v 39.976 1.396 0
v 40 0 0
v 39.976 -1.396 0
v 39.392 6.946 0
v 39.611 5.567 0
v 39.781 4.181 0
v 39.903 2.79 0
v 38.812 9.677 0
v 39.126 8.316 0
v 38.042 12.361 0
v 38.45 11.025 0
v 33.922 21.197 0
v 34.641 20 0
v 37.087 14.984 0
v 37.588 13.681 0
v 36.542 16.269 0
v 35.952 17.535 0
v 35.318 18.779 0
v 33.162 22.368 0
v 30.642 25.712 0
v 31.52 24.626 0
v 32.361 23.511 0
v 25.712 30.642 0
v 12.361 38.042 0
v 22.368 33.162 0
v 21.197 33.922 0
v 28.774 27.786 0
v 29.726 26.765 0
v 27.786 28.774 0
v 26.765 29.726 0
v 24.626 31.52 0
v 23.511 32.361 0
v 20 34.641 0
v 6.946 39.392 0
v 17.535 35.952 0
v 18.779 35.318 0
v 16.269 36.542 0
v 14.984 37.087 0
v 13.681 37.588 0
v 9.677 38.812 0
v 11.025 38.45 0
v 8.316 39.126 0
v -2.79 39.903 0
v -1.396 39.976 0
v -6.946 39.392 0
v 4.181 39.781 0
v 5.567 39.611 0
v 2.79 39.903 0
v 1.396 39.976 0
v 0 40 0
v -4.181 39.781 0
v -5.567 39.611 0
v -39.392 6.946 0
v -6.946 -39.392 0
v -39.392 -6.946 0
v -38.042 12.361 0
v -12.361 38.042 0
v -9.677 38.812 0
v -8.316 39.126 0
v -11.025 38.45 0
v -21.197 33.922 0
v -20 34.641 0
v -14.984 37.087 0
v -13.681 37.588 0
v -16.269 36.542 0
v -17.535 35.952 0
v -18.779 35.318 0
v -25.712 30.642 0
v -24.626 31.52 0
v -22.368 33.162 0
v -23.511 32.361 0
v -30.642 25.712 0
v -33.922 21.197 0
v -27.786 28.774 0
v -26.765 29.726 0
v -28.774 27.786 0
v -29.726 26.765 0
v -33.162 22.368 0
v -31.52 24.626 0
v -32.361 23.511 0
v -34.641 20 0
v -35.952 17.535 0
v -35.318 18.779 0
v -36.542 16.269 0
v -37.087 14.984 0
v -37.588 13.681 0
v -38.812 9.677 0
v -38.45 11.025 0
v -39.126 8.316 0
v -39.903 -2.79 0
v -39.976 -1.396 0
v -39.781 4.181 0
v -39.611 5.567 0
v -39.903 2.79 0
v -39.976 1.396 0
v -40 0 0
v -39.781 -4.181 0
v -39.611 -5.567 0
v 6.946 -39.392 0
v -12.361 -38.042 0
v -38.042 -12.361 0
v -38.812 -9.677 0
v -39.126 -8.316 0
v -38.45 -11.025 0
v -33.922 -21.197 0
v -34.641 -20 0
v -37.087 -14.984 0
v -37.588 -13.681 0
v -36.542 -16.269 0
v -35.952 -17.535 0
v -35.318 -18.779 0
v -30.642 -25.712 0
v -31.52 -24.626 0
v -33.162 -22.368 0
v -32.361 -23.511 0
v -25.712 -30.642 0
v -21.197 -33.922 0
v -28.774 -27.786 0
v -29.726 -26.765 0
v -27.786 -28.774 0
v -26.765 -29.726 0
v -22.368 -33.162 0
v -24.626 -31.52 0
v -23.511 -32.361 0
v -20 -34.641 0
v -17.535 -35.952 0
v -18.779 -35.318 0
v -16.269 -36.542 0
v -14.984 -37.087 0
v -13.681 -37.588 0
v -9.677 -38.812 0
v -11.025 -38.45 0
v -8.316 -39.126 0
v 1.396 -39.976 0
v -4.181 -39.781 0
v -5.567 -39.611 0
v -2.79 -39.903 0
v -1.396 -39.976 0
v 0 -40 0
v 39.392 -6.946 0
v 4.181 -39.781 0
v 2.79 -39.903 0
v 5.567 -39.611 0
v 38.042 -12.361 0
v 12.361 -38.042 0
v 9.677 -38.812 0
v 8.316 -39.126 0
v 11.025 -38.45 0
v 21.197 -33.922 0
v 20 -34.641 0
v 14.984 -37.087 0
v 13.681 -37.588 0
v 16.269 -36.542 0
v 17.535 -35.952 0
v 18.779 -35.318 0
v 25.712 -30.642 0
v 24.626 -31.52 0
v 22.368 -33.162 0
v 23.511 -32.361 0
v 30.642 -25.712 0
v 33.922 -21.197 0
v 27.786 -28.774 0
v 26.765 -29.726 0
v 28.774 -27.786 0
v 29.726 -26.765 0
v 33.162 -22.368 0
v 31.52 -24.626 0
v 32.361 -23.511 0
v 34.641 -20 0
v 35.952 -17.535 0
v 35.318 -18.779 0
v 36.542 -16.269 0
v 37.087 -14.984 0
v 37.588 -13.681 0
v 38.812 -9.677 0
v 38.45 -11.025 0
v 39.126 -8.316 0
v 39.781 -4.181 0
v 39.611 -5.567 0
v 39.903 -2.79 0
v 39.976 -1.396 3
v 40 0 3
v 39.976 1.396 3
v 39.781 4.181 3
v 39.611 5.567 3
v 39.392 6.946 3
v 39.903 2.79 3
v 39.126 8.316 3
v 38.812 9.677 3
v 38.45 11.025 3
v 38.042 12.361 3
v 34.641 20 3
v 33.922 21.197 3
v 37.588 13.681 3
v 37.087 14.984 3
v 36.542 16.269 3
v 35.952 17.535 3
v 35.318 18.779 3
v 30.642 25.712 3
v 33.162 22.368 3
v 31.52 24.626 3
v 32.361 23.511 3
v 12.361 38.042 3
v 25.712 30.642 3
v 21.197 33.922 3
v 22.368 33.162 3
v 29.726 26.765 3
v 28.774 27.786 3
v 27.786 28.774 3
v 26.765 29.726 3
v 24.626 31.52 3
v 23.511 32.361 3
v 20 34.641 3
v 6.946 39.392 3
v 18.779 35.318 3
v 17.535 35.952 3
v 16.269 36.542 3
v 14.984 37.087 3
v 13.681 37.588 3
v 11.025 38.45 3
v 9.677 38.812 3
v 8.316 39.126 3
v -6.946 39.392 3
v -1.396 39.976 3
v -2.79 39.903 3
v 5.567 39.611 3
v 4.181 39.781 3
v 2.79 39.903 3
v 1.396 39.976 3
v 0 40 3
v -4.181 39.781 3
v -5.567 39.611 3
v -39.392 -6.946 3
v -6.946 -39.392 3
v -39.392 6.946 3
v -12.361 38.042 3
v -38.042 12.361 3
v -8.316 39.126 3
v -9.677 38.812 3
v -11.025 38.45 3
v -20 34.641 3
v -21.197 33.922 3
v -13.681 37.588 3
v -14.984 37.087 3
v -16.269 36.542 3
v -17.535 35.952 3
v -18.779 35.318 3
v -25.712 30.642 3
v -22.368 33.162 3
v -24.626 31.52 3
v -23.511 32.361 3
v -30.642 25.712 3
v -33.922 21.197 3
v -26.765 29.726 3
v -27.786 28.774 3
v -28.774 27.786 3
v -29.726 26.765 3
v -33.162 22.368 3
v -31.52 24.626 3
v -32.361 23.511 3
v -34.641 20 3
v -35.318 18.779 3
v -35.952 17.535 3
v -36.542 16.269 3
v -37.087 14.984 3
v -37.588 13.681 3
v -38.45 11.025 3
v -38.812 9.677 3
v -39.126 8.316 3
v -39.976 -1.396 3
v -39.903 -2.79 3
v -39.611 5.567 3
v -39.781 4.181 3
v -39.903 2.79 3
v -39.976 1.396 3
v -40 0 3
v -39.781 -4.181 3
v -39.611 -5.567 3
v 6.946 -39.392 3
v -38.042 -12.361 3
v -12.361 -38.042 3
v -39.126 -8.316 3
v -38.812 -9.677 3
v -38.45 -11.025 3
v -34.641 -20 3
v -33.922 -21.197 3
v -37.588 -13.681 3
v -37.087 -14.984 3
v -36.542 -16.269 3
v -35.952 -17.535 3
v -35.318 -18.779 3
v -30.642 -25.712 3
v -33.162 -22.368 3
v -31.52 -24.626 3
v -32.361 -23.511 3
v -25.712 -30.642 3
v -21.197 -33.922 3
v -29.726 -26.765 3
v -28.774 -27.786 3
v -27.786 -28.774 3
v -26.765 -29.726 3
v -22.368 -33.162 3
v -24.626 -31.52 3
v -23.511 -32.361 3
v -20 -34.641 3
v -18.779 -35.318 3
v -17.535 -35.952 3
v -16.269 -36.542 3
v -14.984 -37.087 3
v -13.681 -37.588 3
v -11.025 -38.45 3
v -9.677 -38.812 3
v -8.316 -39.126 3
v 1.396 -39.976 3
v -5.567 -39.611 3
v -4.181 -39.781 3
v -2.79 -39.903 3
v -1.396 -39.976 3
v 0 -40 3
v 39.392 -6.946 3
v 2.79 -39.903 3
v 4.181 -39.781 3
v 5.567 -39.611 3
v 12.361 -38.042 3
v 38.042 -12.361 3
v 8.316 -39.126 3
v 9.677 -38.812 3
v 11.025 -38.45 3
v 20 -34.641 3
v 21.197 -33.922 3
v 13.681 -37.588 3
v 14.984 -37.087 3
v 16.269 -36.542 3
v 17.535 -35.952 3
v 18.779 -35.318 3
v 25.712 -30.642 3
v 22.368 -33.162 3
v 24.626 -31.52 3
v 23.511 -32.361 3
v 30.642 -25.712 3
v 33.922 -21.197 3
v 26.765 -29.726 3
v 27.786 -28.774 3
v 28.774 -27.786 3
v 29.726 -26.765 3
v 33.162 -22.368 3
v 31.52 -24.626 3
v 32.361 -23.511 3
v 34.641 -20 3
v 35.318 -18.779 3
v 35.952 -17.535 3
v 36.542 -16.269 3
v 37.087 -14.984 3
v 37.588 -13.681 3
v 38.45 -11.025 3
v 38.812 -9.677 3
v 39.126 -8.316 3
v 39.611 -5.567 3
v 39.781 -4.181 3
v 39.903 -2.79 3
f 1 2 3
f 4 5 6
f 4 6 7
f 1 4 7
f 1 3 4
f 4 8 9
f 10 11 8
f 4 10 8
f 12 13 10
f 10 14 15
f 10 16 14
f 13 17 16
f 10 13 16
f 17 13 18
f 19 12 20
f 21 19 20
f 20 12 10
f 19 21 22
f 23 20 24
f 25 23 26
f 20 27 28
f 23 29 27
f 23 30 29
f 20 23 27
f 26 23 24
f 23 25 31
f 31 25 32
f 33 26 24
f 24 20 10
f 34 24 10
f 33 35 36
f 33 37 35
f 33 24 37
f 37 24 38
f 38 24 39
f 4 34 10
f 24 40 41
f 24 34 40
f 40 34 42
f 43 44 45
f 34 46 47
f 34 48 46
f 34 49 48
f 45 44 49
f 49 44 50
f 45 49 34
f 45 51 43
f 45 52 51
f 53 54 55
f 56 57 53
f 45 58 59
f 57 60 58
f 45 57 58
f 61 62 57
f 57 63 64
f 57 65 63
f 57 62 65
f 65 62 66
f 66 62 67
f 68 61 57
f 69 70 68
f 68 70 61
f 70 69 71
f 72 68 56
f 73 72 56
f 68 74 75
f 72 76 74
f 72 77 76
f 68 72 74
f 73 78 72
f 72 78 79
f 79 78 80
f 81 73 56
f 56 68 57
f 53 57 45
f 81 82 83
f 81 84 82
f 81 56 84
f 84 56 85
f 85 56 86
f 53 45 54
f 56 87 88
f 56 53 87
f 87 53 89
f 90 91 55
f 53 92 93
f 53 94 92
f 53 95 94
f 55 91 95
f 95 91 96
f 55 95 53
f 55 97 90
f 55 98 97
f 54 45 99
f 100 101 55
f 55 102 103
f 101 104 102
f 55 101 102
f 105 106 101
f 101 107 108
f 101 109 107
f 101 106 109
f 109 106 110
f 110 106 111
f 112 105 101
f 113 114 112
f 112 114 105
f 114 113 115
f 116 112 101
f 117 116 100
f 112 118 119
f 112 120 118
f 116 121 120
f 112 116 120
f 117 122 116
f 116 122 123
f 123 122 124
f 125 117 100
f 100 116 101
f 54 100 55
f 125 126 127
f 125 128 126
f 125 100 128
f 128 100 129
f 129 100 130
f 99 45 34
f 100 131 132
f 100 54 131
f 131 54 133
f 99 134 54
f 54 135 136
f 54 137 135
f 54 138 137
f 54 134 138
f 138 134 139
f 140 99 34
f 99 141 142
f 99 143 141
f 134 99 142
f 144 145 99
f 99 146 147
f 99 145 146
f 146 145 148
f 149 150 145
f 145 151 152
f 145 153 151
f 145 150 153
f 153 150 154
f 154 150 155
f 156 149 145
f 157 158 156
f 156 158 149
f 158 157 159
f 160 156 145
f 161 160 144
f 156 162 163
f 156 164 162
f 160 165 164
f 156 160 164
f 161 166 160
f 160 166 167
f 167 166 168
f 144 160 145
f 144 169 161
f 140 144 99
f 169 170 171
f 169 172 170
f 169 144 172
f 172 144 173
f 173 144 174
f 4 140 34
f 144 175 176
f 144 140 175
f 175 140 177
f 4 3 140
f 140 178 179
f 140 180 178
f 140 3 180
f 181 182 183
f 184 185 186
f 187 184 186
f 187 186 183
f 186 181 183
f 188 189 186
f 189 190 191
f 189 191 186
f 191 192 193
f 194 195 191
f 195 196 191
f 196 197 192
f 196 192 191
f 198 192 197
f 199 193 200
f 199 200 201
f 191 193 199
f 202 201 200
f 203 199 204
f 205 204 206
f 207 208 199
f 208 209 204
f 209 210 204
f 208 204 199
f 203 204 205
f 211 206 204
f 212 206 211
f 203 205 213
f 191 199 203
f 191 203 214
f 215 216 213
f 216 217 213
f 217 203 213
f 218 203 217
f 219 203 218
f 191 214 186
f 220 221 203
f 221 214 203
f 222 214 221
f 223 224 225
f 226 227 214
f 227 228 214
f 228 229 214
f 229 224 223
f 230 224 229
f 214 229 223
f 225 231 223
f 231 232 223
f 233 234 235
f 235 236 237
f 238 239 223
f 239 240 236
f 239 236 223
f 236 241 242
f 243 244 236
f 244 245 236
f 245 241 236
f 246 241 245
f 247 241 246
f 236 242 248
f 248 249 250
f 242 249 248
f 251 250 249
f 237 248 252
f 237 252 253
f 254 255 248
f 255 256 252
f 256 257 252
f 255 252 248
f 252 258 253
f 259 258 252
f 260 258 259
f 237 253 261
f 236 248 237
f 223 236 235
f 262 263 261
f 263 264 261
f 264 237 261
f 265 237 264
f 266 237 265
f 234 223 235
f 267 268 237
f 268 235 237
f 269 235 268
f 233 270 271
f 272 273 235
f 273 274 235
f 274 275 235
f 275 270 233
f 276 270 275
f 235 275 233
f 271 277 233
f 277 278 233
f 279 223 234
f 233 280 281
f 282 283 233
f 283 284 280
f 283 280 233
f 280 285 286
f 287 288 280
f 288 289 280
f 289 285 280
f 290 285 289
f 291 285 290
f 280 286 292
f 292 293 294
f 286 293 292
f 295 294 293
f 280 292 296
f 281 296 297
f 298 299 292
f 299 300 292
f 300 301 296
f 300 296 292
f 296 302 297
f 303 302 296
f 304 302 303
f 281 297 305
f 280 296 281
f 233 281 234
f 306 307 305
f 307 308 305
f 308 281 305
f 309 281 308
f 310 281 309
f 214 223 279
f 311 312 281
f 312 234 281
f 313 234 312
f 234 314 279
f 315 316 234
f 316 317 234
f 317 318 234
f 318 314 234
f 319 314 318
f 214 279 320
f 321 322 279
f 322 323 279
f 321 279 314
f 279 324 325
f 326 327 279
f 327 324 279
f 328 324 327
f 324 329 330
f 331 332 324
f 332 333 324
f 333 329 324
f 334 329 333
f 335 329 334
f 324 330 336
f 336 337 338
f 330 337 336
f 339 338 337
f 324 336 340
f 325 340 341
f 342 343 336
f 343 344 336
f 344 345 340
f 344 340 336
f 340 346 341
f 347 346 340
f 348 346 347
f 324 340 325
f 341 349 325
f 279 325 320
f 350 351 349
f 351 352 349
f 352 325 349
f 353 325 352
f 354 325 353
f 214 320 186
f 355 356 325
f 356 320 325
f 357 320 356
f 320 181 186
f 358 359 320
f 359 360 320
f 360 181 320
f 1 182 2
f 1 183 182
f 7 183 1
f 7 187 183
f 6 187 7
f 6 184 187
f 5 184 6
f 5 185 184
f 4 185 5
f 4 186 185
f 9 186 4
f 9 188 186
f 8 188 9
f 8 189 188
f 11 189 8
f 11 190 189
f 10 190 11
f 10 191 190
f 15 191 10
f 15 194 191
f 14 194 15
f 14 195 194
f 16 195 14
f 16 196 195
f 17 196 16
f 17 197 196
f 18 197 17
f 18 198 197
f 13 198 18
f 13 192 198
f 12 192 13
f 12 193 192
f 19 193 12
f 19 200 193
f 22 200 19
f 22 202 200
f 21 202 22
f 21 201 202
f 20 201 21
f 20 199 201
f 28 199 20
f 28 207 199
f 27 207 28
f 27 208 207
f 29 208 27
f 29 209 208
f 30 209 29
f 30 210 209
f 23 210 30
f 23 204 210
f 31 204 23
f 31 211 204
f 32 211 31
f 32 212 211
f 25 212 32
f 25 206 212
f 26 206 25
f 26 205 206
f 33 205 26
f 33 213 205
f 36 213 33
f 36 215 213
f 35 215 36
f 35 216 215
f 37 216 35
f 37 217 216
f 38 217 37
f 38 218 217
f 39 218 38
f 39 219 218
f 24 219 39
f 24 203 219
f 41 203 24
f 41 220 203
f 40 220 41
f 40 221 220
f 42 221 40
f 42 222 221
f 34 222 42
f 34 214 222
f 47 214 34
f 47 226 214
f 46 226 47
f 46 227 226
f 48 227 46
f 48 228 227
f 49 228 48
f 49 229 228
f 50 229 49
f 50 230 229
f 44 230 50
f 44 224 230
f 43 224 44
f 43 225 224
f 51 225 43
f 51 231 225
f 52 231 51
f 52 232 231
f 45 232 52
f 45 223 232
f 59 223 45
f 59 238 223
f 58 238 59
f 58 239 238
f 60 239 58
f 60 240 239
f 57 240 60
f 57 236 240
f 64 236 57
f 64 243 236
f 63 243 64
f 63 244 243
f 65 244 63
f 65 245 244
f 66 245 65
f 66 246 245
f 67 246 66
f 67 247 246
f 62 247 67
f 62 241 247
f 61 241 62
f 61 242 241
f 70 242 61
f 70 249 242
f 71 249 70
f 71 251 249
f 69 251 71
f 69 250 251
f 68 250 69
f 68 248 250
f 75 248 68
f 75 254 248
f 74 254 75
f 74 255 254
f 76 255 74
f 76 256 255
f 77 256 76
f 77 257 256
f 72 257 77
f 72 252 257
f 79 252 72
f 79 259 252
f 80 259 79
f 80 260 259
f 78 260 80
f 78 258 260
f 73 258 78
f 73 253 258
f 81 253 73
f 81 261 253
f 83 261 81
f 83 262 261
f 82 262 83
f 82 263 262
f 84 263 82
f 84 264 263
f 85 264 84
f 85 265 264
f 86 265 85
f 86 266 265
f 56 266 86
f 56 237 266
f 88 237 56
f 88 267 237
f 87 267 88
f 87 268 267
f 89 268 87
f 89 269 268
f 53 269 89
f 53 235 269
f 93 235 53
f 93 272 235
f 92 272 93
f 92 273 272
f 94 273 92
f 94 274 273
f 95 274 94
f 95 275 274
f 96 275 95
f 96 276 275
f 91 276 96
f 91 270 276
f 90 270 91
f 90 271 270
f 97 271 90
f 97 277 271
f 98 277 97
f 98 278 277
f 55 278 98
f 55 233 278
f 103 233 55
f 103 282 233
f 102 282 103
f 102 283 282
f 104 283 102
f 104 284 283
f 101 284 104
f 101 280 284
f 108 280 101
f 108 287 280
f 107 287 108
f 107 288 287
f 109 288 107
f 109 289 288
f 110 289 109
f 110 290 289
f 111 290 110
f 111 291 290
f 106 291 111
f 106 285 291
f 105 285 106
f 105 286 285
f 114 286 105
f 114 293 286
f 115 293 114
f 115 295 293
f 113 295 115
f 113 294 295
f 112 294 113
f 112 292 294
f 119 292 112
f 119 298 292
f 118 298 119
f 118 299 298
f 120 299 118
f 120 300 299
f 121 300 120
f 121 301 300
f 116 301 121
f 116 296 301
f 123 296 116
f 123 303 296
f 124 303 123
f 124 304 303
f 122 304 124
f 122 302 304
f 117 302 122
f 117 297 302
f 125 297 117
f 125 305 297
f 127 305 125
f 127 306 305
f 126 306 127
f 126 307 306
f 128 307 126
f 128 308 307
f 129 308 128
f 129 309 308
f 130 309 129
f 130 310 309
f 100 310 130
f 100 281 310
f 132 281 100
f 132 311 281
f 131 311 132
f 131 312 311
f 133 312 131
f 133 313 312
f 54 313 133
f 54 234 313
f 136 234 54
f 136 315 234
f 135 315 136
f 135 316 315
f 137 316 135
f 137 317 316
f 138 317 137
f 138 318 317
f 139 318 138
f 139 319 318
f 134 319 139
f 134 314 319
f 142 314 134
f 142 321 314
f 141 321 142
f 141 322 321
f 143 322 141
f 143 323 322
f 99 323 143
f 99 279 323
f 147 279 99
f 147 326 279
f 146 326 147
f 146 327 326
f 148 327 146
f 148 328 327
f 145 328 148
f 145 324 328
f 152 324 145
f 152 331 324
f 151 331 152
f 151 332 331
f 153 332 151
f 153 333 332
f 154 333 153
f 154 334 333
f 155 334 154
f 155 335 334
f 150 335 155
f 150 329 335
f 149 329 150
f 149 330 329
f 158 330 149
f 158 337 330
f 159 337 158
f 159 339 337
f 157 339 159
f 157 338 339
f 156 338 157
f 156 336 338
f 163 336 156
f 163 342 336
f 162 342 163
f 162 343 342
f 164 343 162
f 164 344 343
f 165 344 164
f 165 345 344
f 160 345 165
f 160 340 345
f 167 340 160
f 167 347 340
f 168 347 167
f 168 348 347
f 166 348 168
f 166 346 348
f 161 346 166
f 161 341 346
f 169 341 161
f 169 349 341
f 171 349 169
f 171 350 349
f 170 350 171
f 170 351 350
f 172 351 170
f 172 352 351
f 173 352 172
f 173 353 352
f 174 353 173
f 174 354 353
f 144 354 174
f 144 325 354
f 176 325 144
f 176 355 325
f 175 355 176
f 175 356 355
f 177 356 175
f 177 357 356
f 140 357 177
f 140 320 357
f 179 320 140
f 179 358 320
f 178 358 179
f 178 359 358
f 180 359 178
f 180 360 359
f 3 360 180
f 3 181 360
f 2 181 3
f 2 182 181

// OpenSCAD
// file: bellum_text_traced.scad
// bellum_text_traced.scad
// "Bellum" lettering traced from the source logo image with
// OpenCV (4x cubic upscale, threshold, morphological cleanup,
// approxPolyDP 2px). Coordinates are centered, Y-up, and
// normalized to 100 units of total width.
// Regenerate with scratchpad/trace2_emit.py if retuning.

module bellum_traced_2d() {
    polygon(points=[[-49.89,10.25],[-49.89,9.49],[-49.35,8.94],[-46.95,8.83],[-45.64,7.74],[-45.09,6.11],[-45.42,-2.07],[-45.09,-10.25],[-46.07,-11.56],[-49.24,-11.89],[-49.56,-12.32],[-49.45,-13.30],[-30.59,-13.41],[-28.08,-12.87],[-26.23,-11.45],[-25.03,-9.27],[-24.48,-6.65],[-25.03,-4.80],[-26.01,-3.27],[-29.28,-0.55],[-27.10,2.84],[-27.32,5.78],[-27.97,6.98],[-29.28,8.29],[-31.13,9.38],[-35.50,10.36],[-40.62,-1.42],[-39.97,-0.98],[-35.06,-0.98],[-33.10,-1.31],[-31.68,-1.96],[-30.04,-3.60],[-29.06,-5.89],[-29.06,-7.96],[-29.83,-9.49],[-31.35,-10.91],[-33.86,-11.67],[-37.35,-11.89],[-39.97,-11.34],[-40.95,-10.25],[-41.38,8.40],[-40.84,8.83],[-38.99,9.05],[-35.93,8.83],[-33.32,7.85],[-31.57,6.32],[-30.92,4.91],[-31.24,2.40],[-32.55,0.98],[-33.86,0.33],[-39.31,0.00],[-40.29,0.44],[-40.95,1.53],[-41.49,6.22]], paths=[[0, 1, 2, 3, 4, 5, 6, 7, 8, 9, 10, 11, 12, 13, 14, 15, 16, 17, 18, 19, 20, 21, 22, 23, 24, 25], [26, 27, 28, 29, 30, 31, 32, 33, 34, 35, 36, 37, 38, 39], [40, 41, 42, 43, 44, 45, 46, 47, 48, 49, 50, 51, 52, 53]]);
    polygon(points=[[-21.76,1.53],[-23.28,-0.44],[-23.72,-1.85],[-23.72,-3.82],[-22.96,-6.22],[-21.54,-7.63],[-19.79,-8.40],[-15.43,-8.40],[-13.69,-8.07],[-12.05,-7.09],[-10.09,-5.13],[-10.31,-4.69],[-11.07,-4.58],[-13.36,-6.43],[-15.76,-7.20],[-18.27,-6.54],[-20.34,-4.47],[-20.77,-3.49],[-20.67,-2.62],[-20.01,-2.18],[-18.48,-2.07],[-12.70,-2.40],[-12.05,-1.96],[-12.27,0.00],[-13.90,1.96],[-16.30,2.94],[-19.68,2.62],[-20.34,-0.22],[-19.47,0.98],[-17.61,1.96],[-15.98,1.53],[-14.78,0.00],[-14.99,-0.76],[-15.98,-0.98],[-20.01,-0.98]], paths=[[0, 1, 2, 3, 4, 5, 6, 7, 8, 9, 10, 11, 12, 13, 14, 15, 16, 17, 18, 19, 20, 21, 22, 23, 24, 25, 26], [27, 28, 29, 30, 31, 32, 33, 34]]);
    polygon(points=[[-3.87,12.98],[-4.85,12.87],[-6.60,12.00],[-8.02,10.80],[-7.80,10.25],[-6.49,9.60],[-6.16,8.62],[-6.16,-3.93],[-6.49,-6.54],[-7.36,-7.20],[-8.67,-7.31],[-9.00,-7.74],[-8.89,-8.29],[-8.23,-8.62],[-1.04,-8.40],[-1.04,-7.85],[-1.47,-7.42],[-3.44,-6.98],[-3.98,-5.78],[-3.76,11.01],[-3.44,11.67],[-3.44,12.54]], paths=[[0, 1, 2, 3, 4, 5, 6, 7, 8, 9, 10, 11, 12, 13, 14, 15, 16, 17, 18, 19, 20, 21]]);
    polygon(points=[[5.07,13.52],[4.31,13.41],[0.82,11.56],[-0.16,10.47],[0.27,9.71],[1.47,10.03],[2.13,9.49],[2.34,7.85],[2.24,-5.45],[1.58,-7.20],[-0.05,-7.63],[0.05,-8.18],[0.93,-8.51],[7.25,-8.51],[7.58,-8.18],[6.92,-7.20],[6.05,-7.20],[5.07,-6.32],[5.18,-1.85],[4.85,-0.65],[5.18,0.33],[5.18,11.34],[5.73,12.54],[5.62,13.20]], paths=[[0, 1, 2, 3, 4, 5, 6, 7, 8, 9, 10, 11, 12, 13, 14, 15, 16, 17, 18, 19, 20, 21, 22, 23]]);
    polygon(points=[[9.00,1.64],[9.11,0.87],[10.09,0.76],[10.74,0.00],[11.07,-0.98],[11.07,-5.56],[11.61,-7.31],[12.60,-8.18],[13.36,-8.51],[16.19,-8.51],[18.92,-7.31],[19.47,-7.31],[20.12,-8.18],[20.67,-8.29],[23.83,-8.18],[24.48,-7.74],[24.37,-6.87],[23.17,-6.87],[22.52,-6.32],[22.19,-0.33],[22.63,0.55],[23.61,1.31],[23.72,2.07],[17.83,2.18],[17.72,1.64],[19.25,0.98],[19.68,0.22],[19.68,-4.58],[18.38,-6.32],[16.74,-6.87],[15.65,-6.87],[14.67,-6.43],[13.69,-4.80],[13.69,0.22],[14.67,2.07],[10.41,2.29]], paths=[[0, 1, 2, 3, 4, 5, 6, 7, 8, 9, 10, 11, 12, 13, 14, 15, 16, 17, 18, 19, 20, 21, 22, 23, 24, 25, 26, 27, 28, 29, 30, 31, 32, 33, 34, 35]]);
    polygon(points=[[27.21,1.85],[27.21,1.20],[28.95,0.11],[29.06,-6.22],[28.52,-7.20],[26.55,-7.52],[26.44,-8.29],[26.77,-8.62],[30.59,-8.83],[32.99,-8.62],[33.53,-8.29],[33.10,-7.31],[32.12,-7.20],[31.57,-6.65],[31.57,-0.87],[32.22,0.00],[34.41,0.98],[36.04,0.76],[36.70,0.11],[37.24,-1.53],[37.24,-6.00],[36.91,-6.76],[35.50,-7.74],[35.61,-8.18],[36.48,-8.51],[40.84,-8.51],[41.60,-8.07],[41.60,-7.74],[40.51,-7.20],[39.97,-6.43],[39.97,-1.96],[40.73,-0.55],[42.91,0.98],[44.66,0.65],[45.53,-0.33],[45.75,-1.09],[45.53,-6.43],[44.98,-7.20],[44.00,-7.52],[43.78,-8.07],[44.66,-8.51],[49.45,-8.62],[50.00,-8.18],[49.56,-7.42],[48.80,-7.42],[48.15,-6.76],[48.36,0.00],[47.93,1.31],[46.51,2.62],[43.68,2.94],[41.82,2.07],[40.29,0.87],[39.86,0.87],[38.66,2.51],[37.35,2.94],[34.95,2.51],[32.22,1.20],[31.46,1.42],[31.79,2.62],[31.24,3.05],[29.28,2.94]], paths=[[0, 1, 2, 3, 4, 5, 6, 7, 8, 9, 10, 11, 12, 13, 14, 15, 16, 17, 18, 19, 20, 21, 22, 23, 24, 25, 26, 27, 28, 29, 30, 31, 32, 33, 34, 35, 36, 37, 38, 39, 40, 41, 42, 43, 44, 45, 46, 47, 48, 49, 50, 51, 52, 53, 54, 55, 56, 57, 58, 59, 60]]);
}

bellum_traced_2d();
// file: bellum_badge_003.scad
// bellum_badge_003.scad
// v003: corrected layout, measured from the source photo. The design is
//   ONE continuous 45-degree checkerboard filling the whole circle with
//   thin white grout lines and a black tile at dead center - v001/v002's
//   "inner bordered diamond on a solid black ring" was a misreading of
//   the photo (the "border" was grout diagonals, the "black ring" was
//   glare on the glossy button). Proportions from the photo: tile pitch
//   ~0.162 D, grout ~0.008 D, text width ~0.86 D, centered.
// v002: "Bellum" lettering traced from the photo (bellum_text_traced.scad).
//
// Printable parts (print in the named color, glue together):
//   base_disc()          black - 3 mm circle; shows through the lattice
//                        holes as the black tiles
//   white_lattice()      white - 2 mm circle-wide lattice: white tiles +
//                        grout webs, one connected piece
//   black_tiles()        black - optional drop-ins for the full (unclipped)
//                        black tiles, if you want them flush
//   text_plate_black()   black - outline plate behind the letters
//   text_letters_white() white - "Bellum" letters (6 pieces), glue on plate
//
// Everything scales from badge_d; thicknesses and clearance are absolute.

$fa = 2;
$fs = 0.4;

// ---- scale ----
badge_d = 80;       // badge diameter: THE scale knob

// ---- thicknesses (absolute mm, independent of badge_d) ----
t_base = 3;         // black disc
t_top  = 2;         // white lattice and drop-in tiles (total badge = 5)
t_text = 1.2;       // each text layer (plate and letters)
clr    = 0.15;      // per-side XY clearance for the drop-in tiles

// ---- proportions (fractions of badge_d, measured from the photo) ----
pitch_frac = 0.162;                     // checker pitch (tile + grout)
grout_w   = max(0.008 * badge_d, 0.8);  // white web between tiles
text_w    = 0.86 * badge_d;             // width of "Bellum"
outline_w = max(0.015 * badge_d, 1.2);  // black outline around the letters

use <bellum_text_traced.scad>  // lettering traced from the logo photo

// ---- derived ----
R     = badge_d / 2;
pitch = pitch_frac * badge_d;
tile  = pitch - grout_w;                // black/white tile side
half_diag = tile / sqrt(2);             // rotated tile half-diagonal
range = ceil(R / pitch) + 1;

eps = 0.01;

// ---------------- 2D shapes ----------------

// black tile centers: (i+j) even puts a black tile at the exact center
module black_squares_2d(shrink = 0) {
    rotate(45)
        for (i = [-range : range], j = [-range : range])
            if ((i + j) % 2 == 0)
                translate([i * pitch, j * pitch])
                    square(tile - 2 * shrink, center = true);
}

// white tiles + grout webs across the whole circle, one connected piece
module lattice_2d() {
    difference() {
        circle(R);
        black_squares_2d();
    }
}

// traced lettering is normalized to 100 units wide, centered
module text_2d() {
    scale(text_w / 100) bellum_traced_2d();
}

// ---------------- printable parts (each flat on Z=0) ----------------

module base_disc() {
    linear_extrude(t_base) circle(R);
}

module white_lattice() {
    linear_extrude(t_top) lattice_2d();
}

// optional flush inlays for the black tiles that lie fully inside the rim
module black_tiles() {
    rotate(45)
        for (i = [-range : range], j = [-range : range])
            if ((i + j) % 2 == 0
                && norm([i, j]) * pitch + half_diag <= R - 1)
                translate([i * pitch, j * pitch])
                    linear_extrude(t_top)
                        square(tile - 2 * clr, center = true);
}

module text_plate_black() {
    linear_extrude(t_text) offset(r = outline_w) text_2d();
}

module text_letters_white() {
    linear_extrude(t_text) text_2d();
}

// ---------------- assembled preview ----------------

module assembly() {
    color([0.15, 0.15, 0.15]) base_disc();
    color("white") translate([0, 0, t_base]) white_lattice();
    color([0.15, 0.15, 0.15]) translate([0, 0, t_base + t_top])
        text_plate_black();
    color("white") translate([0, 0, t_base + t_top + t_text])
        text_letters_white();
}

assembly();
// main file
// bellum_badge_003_base.scad - print in BLACK
// Circle background; its top shows through the lattice as the black squares.
use <bellum_badge_003.scad>
base_disc();
